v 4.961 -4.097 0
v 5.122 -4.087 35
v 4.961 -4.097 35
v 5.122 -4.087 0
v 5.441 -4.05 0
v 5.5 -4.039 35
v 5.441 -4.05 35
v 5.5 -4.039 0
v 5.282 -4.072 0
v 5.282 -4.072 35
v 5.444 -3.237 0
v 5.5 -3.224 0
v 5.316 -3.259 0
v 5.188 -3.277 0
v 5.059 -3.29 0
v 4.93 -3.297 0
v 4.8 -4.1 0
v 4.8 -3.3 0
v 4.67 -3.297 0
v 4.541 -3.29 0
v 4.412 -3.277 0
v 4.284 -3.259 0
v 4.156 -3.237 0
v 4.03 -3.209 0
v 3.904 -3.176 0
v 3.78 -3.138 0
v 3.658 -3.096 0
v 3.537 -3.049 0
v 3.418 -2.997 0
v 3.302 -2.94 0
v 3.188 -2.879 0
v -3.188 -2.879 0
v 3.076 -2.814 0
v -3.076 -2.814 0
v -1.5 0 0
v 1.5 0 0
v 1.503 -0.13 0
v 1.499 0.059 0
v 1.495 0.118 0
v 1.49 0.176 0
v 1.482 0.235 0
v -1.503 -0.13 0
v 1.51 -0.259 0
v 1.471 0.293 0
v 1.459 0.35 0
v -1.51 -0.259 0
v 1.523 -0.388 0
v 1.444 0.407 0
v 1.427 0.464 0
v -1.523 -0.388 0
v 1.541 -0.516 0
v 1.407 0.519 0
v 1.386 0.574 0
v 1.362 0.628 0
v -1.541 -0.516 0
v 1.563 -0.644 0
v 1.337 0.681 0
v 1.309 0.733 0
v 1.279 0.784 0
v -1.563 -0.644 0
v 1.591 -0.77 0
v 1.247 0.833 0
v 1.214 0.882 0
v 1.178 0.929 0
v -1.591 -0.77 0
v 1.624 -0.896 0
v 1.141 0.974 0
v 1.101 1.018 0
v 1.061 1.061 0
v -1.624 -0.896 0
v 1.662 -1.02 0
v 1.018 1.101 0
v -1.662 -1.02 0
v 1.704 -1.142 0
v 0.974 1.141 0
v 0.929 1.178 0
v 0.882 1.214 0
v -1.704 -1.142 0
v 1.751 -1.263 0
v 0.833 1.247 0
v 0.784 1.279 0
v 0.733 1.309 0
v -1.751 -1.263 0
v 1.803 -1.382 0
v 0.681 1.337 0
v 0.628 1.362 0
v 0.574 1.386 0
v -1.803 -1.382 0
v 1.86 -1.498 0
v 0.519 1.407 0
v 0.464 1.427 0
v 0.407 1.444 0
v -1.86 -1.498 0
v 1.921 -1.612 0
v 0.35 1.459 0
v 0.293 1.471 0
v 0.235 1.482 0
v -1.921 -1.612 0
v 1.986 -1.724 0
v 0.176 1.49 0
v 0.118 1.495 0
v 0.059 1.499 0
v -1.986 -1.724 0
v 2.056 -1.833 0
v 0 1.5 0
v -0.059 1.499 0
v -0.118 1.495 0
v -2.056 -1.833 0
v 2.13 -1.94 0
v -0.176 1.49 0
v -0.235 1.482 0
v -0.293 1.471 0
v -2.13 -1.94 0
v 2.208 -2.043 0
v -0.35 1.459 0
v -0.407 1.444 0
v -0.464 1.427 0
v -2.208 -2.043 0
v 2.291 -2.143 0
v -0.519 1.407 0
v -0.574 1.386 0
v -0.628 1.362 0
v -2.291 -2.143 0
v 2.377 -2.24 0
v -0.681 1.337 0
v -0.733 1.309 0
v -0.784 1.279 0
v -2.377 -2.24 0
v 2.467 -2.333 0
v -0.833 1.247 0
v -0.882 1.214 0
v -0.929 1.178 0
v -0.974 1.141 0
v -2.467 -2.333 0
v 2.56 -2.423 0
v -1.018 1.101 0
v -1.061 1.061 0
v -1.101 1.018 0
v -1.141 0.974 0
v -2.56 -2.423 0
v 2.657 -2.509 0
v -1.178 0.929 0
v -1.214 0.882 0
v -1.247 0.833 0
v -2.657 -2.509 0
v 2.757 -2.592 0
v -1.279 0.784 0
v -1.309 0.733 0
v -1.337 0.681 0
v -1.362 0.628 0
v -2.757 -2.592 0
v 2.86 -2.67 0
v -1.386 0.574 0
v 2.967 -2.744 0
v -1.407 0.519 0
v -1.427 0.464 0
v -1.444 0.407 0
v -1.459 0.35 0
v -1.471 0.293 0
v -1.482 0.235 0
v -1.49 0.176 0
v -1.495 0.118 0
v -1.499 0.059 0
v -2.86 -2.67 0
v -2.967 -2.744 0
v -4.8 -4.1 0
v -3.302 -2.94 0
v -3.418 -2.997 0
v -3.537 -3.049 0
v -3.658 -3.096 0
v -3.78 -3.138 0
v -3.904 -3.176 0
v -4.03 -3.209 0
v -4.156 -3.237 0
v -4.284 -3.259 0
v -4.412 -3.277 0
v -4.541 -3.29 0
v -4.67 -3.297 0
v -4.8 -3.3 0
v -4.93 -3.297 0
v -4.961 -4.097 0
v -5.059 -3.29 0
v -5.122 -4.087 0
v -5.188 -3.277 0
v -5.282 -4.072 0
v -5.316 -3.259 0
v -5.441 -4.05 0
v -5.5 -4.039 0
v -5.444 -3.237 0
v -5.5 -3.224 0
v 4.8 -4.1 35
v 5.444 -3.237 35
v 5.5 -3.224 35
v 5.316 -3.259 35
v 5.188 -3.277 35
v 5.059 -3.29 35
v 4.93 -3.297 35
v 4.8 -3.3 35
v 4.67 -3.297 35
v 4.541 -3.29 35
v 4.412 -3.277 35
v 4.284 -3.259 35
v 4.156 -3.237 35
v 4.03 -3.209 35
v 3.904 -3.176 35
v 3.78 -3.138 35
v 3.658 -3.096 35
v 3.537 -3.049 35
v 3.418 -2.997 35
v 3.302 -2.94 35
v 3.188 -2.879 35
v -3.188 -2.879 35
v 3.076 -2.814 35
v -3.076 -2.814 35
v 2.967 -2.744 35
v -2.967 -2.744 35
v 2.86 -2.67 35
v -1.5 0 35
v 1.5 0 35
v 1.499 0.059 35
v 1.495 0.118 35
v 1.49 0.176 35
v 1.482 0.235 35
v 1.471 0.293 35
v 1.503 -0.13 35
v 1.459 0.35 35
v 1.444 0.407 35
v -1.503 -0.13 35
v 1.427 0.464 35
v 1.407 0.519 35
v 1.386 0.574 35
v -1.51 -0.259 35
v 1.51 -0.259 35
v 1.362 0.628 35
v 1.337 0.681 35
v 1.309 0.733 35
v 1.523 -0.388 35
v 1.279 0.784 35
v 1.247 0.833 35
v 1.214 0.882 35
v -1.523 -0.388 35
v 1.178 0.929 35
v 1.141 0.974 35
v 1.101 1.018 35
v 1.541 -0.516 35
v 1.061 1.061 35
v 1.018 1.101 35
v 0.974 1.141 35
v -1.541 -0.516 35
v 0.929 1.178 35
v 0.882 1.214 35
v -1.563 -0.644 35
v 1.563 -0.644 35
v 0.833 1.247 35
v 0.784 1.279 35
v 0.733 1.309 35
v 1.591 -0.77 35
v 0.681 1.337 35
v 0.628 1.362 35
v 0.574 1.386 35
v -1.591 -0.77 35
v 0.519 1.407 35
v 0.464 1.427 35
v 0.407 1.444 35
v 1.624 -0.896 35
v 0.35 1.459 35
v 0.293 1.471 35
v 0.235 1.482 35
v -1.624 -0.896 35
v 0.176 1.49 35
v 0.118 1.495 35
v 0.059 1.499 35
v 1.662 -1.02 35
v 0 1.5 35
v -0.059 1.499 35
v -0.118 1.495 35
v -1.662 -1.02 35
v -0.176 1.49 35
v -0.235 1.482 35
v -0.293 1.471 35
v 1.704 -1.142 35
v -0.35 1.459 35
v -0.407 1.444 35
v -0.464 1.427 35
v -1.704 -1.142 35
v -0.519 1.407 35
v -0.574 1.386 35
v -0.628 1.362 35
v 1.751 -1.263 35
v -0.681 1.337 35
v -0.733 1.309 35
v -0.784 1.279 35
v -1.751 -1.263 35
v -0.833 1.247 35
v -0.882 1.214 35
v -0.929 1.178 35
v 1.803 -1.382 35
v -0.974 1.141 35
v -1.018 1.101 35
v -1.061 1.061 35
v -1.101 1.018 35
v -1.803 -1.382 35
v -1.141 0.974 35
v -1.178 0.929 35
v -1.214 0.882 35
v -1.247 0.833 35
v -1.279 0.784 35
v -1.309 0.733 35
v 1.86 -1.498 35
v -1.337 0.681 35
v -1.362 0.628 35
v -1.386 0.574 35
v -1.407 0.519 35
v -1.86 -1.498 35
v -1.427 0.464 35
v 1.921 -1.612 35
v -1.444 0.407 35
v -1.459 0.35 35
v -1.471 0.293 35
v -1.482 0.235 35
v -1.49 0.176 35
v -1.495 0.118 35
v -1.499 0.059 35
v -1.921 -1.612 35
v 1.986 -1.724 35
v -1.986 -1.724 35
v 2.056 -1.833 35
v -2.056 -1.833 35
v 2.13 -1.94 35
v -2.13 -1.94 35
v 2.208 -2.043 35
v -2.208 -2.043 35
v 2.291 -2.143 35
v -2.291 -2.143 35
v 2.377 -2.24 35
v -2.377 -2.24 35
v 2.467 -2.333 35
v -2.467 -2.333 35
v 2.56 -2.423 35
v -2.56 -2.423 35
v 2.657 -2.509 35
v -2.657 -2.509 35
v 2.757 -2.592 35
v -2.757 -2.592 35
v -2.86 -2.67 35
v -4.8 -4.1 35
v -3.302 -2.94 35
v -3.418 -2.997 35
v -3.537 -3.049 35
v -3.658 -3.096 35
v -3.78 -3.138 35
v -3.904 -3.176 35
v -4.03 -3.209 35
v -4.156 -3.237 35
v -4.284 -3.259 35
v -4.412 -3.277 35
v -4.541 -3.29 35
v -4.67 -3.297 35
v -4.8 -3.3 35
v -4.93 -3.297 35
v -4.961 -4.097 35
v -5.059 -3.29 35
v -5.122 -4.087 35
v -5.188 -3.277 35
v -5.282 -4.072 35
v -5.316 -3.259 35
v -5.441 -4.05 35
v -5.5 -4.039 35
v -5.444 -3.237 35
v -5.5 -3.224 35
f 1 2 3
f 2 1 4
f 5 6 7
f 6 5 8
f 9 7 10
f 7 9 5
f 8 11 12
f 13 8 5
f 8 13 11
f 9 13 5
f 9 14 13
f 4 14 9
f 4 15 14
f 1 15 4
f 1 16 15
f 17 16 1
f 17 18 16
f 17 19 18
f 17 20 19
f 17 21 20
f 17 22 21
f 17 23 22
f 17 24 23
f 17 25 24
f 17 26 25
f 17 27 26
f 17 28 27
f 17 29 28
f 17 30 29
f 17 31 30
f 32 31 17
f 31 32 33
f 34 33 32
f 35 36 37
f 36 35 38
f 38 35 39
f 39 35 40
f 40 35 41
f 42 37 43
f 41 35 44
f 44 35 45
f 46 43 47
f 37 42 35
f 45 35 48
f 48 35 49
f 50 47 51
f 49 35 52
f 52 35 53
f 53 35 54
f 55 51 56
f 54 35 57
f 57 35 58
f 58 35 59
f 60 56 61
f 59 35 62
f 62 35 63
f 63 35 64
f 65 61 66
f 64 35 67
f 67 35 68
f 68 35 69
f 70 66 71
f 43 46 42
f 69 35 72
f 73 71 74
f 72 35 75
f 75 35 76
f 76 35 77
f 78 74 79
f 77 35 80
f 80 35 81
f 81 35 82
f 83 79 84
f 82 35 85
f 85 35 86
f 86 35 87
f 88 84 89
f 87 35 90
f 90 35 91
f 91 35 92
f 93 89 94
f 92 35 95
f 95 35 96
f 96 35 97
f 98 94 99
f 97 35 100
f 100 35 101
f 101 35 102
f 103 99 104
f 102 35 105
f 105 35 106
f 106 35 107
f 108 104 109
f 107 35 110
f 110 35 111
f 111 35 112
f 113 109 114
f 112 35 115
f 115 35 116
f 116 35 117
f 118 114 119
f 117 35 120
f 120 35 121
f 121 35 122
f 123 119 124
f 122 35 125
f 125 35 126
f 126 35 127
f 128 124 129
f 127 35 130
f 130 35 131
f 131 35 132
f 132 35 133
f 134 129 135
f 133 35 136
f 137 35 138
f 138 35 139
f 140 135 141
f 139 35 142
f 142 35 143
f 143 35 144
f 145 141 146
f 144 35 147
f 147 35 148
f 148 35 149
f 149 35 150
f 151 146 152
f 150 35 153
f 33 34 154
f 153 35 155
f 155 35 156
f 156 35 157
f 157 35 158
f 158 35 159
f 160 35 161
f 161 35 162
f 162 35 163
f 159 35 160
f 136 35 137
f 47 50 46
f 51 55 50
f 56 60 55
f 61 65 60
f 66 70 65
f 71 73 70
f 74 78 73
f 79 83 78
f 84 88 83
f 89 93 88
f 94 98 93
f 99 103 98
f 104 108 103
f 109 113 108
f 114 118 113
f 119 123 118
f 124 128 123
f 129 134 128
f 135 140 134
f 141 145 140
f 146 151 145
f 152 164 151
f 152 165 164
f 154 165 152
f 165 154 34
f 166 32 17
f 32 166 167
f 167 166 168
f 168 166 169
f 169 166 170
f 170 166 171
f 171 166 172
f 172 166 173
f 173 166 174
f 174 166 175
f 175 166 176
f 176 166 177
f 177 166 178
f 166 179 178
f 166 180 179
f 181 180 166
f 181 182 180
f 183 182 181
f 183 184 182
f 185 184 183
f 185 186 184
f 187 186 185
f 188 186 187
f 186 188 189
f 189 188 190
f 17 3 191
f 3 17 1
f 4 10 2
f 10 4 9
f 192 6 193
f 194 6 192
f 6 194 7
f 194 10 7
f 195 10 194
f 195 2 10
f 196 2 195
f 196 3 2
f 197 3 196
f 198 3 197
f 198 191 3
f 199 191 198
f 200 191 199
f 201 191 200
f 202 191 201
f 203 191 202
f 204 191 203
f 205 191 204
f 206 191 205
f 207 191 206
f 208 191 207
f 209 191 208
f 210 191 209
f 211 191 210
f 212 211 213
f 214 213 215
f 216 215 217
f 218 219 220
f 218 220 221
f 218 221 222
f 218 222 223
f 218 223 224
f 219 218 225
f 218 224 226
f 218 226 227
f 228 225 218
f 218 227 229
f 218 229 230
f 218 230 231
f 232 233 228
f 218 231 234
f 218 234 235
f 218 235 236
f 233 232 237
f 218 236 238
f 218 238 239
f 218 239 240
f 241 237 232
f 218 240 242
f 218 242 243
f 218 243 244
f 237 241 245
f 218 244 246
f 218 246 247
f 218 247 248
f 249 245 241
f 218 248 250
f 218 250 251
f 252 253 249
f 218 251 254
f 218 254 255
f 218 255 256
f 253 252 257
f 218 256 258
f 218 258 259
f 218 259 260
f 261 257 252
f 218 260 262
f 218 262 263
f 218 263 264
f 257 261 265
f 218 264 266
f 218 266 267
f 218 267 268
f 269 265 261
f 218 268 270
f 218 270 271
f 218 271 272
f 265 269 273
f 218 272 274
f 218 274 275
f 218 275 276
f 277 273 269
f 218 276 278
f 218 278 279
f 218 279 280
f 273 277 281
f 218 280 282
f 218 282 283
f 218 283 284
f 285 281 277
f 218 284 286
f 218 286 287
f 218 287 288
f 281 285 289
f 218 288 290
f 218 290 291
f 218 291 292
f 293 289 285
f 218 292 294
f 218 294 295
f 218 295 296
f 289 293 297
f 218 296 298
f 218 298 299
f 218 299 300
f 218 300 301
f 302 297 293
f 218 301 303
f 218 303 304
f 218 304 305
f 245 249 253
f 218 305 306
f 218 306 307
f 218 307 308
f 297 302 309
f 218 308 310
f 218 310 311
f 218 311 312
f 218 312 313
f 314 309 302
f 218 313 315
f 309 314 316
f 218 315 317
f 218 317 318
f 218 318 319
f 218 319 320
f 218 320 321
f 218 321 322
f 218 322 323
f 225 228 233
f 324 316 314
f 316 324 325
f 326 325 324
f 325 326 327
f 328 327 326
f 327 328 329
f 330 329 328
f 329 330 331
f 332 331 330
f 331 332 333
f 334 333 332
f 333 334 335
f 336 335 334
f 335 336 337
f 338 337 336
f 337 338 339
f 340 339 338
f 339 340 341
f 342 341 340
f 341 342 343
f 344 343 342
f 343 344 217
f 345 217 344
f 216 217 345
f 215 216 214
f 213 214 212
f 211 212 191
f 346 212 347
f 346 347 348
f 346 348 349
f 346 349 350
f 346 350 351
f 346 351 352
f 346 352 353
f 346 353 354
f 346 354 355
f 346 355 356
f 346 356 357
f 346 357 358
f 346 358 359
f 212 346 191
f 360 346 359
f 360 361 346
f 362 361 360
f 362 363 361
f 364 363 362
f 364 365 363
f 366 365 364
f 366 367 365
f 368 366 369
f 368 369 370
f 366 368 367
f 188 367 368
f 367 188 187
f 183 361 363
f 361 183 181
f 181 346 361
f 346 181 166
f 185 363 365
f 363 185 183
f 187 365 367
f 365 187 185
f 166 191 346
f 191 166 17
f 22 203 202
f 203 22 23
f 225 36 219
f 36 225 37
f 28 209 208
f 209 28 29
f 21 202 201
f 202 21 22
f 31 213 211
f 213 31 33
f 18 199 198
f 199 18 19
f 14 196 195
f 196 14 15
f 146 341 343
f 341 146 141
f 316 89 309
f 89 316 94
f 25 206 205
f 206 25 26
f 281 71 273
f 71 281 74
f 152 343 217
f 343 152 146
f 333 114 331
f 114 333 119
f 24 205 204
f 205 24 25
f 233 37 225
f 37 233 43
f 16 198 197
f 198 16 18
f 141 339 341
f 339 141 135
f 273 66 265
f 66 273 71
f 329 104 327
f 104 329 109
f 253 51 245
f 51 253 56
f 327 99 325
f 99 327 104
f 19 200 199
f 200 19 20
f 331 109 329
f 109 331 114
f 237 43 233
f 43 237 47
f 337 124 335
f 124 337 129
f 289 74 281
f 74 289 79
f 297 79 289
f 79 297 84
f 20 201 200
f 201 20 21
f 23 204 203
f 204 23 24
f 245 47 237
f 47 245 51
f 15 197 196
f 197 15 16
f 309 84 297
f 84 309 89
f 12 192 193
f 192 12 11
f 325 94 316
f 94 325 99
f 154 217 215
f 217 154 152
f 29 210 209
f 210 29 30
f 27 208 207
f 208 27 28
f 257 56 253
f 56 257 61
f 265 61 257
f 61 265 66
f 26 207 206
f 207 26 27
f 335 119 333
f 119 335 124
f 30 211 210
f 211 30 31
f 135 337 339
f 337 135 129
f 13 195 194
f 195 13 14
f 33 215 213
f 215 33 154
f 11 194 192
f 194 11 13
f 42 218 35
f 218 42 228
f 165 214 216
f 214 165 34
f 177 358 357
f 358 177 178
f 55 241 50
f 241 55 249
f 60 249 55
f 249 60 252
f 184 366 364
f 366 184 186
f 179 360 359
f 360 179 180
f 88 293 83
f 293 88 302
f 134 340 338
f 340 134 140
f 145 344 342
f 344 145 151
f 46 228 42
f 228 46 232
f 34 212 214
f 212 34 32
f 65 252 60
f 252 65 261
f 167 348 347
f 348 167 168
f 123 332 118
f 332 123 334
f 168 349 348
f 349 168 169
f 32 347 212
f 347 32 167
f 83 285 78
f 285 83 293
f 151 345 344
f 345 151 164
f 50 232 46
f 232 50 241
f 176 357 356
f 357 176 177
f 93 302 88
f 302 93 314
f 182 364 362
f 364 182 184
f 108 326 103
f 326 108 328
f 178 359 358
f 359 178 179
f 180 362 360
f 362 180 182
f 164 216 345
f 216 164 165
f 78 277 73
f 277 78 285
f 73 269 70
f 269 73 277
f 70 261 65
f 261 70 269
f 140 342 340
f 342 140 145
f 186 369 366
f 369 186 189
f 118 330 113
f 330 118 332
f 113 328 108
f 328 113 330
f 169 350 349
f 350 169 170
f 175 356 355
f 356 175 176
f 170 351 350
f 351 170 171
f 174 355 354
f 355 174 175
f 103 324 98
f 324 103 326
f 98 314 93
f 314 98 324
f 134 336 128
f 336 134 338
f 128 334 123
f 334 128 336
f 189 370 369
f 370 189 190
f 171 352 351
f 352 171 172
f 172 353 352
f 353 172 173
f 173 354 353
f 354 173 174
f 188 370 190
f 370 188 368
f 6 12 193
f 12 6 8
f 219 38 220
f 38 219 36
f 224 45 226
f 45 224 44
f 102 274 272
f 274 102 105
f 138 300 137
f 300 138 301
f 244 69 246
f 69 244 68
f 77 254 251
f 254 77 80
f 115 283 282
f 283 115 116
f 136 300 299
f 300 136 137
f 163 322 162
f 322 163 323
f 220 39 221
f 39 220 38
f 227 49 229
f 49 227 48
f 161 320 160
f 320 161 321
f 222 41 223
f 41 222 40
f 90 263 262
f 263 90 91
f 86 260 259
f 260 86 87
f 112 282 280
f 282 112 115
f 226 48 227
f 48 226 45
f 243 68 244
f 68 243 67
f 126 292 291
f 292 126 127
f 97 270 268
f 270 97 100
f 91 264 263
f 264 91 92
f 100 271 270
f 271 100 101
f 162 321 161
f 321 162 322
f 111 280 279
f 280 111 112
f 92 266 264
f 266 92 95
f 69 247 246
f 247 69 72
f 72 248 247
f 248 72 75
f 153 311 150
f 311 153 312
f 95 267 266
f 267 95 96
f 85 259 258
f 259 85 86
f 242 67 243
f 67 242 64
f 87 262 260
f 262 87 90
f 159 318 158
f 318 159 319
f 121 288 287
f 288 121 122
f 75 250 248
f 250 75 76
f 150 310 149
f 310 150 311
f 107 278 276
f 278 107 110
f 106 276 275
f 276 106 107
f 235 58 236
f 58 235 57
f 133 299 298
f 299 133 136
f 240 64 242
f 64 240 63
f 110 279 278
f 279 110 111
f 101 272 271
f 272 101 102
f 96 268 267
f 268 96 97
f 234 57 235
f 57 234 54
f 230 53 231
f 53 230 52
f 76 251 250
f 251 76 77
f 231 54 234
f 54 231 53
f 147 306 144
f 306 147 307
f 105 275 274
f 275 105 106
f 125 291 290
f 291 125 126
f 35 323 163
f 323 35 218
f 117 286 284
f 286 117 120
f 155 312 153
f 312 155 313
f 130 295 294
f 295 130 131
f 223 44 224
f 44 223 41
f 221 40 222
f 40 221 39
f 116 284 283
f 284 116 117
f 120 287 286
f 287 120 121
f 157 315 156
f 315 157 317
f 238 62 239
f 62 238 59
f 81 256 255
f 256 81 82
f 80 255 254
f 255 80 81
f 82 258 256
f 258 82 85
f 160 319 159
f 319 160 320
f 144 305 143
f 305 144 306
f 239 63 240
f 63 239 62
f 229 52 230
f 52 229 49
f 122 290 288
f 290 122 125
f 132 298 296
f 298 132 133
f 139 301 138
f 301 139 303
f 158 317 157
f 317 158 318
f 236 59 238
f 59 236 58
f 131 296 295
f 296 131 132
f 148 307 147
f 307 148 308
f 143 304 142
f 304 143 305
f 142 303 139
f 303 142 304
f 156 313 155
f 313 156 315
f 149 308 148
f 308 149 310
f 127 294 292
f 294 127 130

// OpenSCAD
// Electrode Seating Guide
// Racetrack-shaped cover that keeps the two electrodes parallel and seated
// to a consistent depth. Only the top is open, so the bottom face stops each
// electrode at the same height while also sitting flat on the print bed.
// Modified from Vial Cap.scad by Codex, then hand fixed.

$fn = 160; // smooth cylinders for a better fit

// -----------------------------
// Key parameters
// -----------------------------
electrode_od = 6.0;        // mm, outer diameter of electrode
electrode_tol = 0.6;       // mm, print clearance on each electrode hole
electrode_cutout = 0;      // mm, additional clearance used on the cap
electrode_offset = 4.8;    // mm, distance from origin to each electrode center

stop_height = 35;           // mm, overall height of the figure-eight stop
shell_wall = 0.8;          // mm extra wall around each electrode sleeve

// Derived dimensions
electrode_port_od = electrode_od + electrode_tol + electrode_cutout;
outer_shell_od = electrode_port_od + 2 * shell_wall;
separation = (electrode_offset - ((electrode_od + electrode_tol) / 2))*2;
assert(separation > 0, "electrode_offset must be greater than half electrode_od");

// -----------------------------
// Helper modules
// -----------------------------
module electrode_shell(height) {
  union() {
    // Cylindrical sleeves around each electrode port
    for (offset = [-electrode_offset, electrode_offset])
      translate([-offset, 0, 0])
        cylinder(d = outer_shell_od, h = height, center = false);

    // Rectangular bridge that closes the sleeves into a racetrack profile
    translate([- electrode_offset, -outer_shell_od / 2, 0])
      cube([2 * electrode_offset, outer_shell_od, height], center = false);
  }
}

// -----------------------------
// Model
// -----------------------------
union() {
  difference() {
  electrode_shell(stop_height);

  // Openings for the electrodes
  for (offset = [-electrode_offset, electrode_offset])
    translate([-offset, 0, 0])
      cylinder(d = electrode_port_od, h = stop_height, center = false);

  // Remove 3/4 of cross-section to allow easy removal
  translate([-outer_shell_od *2, 0, 0])
    cube([outer_shell_od *4, outer_shell_od, stop_height], center = false);
  for (offset = [-electrode_offset*2, electrode_offset*2])
    translate([offset, 0 , stop_height/2])
      cube([outer_shell_od, outer_shell_od, stop_height], center = true);
  }
  // Central cylinder to protrude beyond centre point for better seating
      cylinder(d = separation, h = stop_height, center = false);

}
